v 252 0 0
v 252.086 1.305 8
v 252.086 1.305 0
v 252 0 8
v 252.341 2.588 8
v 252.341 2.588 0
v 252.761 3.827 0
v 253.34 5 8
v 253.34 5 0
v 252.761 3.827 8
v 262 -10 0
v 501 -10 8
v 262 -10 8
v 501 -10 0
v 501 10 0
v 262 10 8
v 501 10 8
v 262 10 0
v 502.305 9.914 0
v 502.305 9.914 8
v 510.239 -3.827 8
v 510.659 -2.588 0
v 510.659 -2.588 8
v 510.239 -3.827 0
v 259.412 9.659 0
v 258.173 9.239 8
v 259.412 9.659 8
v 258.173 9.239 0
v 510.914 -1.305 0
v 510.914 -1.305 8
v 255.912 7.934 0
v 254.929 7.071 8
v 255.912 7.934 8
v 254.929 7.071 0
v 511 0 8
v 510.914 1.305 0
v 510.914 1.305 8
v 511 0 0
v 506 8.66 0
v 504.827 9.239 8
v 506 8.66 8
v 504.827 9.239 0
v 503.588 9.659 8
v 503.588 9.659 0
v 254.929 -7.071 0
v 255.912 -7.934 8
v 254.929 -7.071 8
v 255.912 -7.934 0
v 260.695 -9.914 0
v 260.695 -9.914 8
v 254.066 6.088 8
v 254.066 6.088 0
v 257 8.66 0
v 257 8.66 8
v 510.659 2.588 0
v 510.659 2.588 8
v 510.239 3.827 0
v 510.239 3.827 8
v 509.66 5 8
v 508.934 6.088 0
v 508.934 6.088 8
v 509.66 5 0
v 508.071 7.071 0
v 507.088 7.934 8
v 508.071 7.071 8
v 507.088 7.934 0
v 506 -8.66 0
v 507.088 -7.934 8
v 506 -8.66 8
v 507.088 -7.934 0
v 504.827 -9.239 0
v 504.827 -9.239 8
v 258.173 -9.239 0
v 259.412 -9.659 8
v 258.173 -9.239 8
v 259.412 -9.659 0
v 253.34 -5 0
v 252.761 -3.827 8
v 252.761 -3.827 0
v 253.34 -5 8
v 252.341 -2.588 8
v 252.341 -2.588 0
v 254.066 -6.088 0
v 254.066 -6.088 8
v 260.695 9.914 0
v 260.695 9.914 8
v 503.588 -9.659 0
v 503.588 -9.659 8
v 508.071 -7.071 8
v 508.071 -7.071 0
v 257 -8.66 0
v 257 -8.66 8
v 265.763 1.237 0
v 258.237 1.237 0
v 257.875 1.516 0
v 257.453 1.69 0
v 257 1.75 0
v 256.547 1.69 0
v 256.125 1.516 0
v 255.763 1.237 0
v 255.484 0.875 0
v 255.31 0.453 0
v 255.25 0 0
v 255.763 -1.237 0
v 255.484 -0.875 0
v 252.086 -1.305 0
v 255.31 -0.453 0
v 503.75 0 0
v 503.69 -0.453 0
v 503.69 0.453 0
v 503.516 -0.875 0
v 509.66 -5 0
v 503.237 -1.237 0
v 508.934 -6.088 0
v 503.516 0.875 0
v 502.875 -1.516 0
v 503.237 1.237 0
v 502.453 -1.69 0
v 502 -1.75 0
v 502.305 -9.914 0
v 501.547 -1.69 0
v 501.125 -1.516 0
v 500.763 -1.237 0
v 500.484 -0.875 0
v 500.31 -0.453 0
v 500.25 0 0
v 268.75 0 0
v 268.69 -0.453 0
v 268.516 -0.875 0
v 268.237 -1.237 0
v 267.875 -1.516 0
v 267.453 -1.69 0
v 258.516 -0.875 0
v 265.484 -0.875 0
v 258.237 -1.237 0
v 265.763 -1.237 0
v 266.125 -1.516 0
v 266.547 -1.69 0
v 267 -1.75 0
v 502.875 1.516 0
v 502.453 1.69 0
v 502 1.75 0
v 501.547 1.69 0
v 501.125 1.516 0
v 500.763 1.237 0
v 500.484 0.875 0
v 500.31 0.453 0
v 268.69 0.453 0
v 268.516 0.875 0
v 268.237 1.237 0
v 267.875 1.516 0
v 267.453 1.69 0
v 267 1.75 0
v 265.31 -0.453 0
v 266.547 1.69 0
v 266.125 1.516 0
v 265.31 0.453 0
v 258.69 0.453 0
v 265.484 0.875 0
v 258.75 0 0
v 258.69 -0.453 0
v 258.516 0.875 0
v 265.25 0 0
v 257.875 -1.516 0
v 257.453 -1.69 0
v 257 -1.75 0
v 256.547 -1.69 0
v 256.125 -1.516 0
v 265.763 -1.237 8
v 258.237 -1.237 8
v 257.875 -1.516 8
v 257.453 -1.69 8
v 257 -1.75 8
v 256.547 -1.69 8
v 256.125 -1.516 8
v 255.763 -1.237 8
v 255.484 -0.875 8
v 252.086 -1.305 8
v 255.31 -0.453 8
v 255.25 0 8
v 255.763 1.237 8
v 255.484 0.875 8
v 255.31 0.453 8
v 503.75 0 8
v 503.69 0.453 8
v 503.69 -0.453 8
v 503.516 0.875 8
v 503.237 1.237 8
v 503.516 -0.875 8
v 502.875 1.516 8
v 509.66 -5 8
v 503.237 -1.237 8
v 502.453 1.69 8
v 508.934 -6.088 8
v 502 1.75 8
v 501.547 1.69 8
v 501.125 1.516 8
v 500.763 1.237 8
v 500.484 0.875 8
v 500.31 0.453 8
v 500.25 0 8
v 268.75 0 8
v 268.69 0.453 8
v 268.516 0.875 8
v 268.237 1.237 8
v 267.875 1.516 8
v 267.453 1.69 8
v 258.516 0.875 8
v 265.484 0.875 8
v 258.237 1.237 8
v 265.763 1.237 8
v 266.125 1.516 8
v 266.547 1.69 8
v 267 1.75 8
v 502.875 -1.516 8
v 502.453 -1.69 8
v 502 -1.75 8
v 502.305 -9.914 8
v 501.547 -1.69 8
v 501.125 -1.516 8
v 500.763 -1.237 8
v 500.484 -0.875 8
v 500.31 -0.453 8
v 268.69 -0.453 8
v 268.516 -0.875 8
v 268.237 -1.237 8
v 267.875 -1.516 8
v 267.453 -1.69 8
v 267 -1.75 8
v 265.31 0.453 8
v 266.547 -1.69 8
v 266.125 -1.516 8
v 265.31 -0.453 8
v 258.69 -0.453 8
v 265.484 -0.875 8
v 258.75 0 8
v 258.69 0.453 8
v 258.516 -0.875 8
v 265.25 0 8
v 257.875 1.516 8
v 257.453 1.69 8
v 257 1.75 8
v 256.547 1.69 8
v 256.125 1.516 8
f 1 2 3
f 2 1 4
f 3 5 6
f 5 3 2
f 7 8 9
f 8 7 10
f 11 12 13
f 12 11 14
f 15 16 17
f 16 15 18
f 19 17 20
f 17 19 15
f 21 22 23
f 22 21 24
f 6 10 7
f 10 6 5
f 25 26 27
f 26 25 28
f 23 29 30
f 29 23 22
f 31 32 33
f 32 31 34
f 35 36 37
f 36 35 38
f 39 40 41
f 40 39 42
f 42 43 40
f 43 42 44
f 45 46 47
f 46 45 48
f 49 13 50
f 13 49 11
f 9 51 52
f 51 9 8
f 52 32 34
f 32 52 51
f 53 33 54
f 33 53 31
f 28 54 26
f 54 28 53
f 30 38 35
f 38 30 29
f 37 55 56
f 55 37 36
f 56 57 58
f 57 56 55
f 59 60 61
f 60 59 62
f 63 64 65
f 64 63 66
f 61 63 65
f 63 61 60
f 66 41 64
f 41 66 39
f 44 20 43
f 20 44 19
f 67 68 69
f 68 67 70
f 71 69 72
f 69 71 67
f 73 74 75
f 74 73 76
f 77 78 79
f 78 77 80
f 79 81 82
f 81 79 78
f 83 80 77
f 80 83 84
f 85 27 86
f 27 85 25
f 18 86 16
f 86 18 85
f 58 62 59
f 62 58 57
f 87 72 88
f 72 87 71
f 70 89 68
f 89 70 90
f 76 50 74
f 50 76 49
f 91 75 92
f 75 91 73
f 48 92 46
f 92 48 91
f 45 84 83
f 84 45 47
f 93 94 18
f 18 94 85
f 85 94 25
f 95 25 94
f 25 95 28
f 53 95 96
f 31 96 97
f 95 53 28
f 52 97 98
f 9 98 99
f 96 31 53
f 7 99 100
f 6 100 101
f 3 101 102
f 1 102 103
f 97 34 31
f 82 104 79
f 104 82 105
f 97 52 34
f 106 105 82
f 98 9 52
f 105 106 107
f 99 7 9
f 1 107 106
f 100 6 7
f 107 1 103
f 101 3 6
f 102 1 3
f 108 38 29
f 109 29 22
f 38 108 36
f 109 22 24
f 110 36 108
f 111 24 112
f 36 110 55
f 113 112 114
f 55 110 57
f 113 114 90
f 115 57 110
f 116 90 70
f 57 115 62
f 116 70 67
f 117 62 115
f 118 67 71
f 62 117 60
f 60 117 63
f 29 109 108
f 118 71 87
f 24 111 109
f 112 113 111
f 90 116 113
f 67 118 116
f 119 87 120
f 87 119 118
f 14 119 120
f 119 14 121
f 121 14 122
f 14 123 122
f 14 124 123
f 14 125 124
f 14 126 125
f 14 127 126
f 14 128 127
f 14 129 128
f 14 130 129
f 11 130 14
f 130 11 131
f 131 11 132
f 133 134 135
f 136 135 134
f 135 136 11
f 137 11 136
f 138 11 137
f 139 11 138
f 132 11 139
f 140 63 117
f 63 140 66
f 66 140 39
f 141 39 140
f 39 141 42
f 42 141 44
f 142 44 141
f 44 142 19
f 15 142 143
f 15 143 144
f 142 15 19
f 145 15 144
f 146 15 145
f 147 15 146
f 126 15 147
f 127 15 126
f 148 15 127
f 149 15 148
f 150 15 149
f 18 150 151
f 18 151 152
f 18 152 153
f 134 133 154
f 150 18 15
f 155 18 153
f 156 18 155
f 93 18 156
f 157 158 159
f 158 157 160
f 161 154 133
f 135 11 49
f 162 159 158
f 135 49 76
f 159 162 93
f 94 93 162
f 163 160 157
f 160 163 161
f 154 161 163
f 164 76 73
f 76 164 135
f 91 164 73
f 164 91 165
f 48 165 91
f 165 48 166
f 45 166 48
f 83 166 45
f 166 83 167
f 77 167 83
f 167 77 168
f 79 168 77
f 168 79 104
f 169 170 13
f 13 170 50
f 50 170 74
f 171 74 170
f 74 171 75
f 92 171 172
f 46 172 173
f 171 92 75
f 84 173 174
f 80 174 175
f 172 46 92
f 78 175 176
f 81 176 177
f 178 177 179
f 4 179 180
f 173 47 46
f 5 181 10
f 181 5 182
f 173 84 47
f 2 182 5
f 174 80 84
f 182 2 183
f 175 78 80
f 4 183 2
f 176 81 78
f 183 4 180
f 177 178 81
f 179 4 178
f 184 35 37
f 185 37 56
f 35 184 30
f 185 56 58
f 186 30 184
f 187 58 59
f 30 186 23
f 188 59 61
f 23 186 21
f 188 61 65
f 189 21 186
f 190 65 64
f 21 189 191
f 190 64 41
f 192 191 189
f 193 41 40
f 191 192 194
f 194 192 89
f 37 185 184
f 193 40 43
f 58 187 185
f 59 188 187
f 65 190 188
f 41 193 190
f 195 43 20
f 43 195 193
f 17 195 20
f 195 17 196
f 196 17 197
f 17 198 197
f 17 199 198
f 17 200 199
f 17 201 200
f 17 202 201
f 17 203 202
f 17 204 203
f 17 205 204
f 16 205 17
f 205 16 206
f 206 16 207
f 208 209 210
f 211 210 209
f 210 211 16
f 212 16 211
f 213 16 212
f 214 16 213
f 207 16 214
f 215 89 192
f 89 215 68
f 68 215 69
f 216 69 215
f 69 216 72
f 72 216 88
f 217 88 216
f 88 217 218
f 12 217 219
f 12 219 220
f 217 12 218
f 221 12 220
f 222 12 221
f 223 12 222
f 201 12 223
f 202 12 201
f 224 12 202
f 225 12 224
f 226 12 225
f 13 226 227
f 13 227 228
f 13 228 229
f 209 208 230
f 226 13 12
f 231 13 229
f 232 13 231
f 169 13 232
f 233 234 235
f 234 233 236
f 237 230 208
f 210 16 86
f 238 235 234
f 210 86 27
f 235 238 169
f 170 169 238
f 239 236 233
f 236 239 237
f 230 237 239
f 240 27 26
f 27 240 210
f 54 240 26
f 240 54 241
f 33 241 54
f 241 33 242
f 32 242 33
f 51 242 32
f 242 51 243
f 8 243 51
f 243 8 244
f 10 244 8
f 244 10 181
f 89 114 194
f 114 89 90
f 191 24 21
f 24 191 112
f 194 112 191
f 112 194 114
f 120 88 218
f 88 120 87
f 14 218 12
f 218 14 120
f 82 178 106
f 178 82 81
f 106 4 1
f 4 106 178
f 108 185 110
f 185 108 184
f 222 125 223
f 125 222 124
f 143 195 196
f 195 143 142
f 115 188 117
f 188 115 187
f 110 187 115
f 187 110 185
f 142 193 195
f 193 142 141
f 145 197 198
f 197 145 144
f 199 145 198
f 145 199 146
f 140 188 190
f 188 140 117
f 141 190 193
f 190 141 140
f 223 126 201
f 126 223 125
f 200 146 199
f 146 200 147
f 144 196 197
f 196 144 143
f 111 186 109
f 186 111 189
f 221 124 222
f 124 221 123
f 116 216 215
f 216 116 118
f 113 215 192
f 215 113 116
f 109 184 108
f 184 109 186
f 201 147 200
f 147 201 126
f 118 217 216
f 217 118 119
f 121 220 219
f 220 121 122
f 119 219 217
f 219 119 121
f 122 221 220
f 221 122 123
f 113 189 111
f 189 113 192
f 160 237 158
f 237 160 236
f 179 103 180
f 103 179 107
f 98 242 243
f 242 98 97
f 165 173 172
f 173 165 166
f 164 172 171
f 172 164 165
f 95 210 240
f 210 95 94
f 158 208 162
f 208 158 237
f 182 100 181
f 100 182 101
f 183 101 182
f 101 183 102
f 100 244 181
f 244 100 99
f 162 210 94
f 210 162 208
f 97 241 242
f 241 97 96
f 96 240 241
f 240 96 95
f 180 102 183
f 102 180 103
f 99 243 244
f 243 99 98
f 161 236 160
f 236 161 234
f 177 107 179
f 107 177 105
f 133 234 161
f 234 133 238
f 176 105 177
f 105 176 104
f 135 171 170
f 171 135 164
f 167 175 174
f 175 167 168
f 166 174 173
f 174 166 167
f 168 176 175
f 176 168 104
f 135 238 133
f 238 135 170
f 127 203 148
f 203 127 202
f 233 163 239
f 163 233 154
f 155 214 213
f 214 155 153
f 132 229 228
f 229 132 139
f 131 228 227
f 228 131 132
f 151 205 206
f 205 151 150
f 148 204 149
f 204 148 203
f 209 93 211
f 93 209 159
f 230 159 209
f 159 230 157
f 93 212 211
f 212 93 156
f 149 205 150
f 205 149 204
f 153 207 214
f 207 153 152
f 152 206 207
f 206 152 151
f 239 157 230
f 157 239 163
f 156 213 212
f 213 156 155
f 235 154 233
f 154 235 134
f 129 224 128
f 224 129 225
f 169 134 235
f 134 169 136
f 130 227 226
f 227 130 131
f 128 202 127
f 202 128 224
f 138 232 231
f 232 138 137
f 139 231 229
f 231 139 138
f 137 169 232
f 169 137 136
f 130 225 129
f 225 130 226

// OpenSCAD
// Gen-EE — TOP SPIDER ARM OUTER HALF (2026-11-05). Print x3, flat. Mid-span splice -> frame-rod end on top_standoff.
include <parameters.scad>;
$fn = 48;
arm_r0 = 13.0;
arm_r1 = flange_bolt_r + 9.0;
arm_mid = (arm_r0 + arm_r1) / 2;
splice_lap = 20.0;
arm_ro0 = arm_mid - splice_lap / 2;
difference() {
    hull() {
        translate([arm_ro0 + arm_w / 2, 0, 0]) cylinder(d=arm_w, h=arm_t);
        translate([arm_r1 - arm_w / 2, 0, 0]) cylinder(d=arm_w, h=arm_t);
    }
    translate([flange_bolt_r, 0, -0.1]) cylinder(d=m3_clear, h=arm_t + 1, $fn=24);
    translate([arm_mid - 5, 0, -0.1]) cylinder(d=m3_clear, h=arm_t + 1, $fn=24);
    translate([arm_mid + 5, 0, -0.1]) cylinder(d=m3_clear, h=arm_t + 1, $fn=24);
}
